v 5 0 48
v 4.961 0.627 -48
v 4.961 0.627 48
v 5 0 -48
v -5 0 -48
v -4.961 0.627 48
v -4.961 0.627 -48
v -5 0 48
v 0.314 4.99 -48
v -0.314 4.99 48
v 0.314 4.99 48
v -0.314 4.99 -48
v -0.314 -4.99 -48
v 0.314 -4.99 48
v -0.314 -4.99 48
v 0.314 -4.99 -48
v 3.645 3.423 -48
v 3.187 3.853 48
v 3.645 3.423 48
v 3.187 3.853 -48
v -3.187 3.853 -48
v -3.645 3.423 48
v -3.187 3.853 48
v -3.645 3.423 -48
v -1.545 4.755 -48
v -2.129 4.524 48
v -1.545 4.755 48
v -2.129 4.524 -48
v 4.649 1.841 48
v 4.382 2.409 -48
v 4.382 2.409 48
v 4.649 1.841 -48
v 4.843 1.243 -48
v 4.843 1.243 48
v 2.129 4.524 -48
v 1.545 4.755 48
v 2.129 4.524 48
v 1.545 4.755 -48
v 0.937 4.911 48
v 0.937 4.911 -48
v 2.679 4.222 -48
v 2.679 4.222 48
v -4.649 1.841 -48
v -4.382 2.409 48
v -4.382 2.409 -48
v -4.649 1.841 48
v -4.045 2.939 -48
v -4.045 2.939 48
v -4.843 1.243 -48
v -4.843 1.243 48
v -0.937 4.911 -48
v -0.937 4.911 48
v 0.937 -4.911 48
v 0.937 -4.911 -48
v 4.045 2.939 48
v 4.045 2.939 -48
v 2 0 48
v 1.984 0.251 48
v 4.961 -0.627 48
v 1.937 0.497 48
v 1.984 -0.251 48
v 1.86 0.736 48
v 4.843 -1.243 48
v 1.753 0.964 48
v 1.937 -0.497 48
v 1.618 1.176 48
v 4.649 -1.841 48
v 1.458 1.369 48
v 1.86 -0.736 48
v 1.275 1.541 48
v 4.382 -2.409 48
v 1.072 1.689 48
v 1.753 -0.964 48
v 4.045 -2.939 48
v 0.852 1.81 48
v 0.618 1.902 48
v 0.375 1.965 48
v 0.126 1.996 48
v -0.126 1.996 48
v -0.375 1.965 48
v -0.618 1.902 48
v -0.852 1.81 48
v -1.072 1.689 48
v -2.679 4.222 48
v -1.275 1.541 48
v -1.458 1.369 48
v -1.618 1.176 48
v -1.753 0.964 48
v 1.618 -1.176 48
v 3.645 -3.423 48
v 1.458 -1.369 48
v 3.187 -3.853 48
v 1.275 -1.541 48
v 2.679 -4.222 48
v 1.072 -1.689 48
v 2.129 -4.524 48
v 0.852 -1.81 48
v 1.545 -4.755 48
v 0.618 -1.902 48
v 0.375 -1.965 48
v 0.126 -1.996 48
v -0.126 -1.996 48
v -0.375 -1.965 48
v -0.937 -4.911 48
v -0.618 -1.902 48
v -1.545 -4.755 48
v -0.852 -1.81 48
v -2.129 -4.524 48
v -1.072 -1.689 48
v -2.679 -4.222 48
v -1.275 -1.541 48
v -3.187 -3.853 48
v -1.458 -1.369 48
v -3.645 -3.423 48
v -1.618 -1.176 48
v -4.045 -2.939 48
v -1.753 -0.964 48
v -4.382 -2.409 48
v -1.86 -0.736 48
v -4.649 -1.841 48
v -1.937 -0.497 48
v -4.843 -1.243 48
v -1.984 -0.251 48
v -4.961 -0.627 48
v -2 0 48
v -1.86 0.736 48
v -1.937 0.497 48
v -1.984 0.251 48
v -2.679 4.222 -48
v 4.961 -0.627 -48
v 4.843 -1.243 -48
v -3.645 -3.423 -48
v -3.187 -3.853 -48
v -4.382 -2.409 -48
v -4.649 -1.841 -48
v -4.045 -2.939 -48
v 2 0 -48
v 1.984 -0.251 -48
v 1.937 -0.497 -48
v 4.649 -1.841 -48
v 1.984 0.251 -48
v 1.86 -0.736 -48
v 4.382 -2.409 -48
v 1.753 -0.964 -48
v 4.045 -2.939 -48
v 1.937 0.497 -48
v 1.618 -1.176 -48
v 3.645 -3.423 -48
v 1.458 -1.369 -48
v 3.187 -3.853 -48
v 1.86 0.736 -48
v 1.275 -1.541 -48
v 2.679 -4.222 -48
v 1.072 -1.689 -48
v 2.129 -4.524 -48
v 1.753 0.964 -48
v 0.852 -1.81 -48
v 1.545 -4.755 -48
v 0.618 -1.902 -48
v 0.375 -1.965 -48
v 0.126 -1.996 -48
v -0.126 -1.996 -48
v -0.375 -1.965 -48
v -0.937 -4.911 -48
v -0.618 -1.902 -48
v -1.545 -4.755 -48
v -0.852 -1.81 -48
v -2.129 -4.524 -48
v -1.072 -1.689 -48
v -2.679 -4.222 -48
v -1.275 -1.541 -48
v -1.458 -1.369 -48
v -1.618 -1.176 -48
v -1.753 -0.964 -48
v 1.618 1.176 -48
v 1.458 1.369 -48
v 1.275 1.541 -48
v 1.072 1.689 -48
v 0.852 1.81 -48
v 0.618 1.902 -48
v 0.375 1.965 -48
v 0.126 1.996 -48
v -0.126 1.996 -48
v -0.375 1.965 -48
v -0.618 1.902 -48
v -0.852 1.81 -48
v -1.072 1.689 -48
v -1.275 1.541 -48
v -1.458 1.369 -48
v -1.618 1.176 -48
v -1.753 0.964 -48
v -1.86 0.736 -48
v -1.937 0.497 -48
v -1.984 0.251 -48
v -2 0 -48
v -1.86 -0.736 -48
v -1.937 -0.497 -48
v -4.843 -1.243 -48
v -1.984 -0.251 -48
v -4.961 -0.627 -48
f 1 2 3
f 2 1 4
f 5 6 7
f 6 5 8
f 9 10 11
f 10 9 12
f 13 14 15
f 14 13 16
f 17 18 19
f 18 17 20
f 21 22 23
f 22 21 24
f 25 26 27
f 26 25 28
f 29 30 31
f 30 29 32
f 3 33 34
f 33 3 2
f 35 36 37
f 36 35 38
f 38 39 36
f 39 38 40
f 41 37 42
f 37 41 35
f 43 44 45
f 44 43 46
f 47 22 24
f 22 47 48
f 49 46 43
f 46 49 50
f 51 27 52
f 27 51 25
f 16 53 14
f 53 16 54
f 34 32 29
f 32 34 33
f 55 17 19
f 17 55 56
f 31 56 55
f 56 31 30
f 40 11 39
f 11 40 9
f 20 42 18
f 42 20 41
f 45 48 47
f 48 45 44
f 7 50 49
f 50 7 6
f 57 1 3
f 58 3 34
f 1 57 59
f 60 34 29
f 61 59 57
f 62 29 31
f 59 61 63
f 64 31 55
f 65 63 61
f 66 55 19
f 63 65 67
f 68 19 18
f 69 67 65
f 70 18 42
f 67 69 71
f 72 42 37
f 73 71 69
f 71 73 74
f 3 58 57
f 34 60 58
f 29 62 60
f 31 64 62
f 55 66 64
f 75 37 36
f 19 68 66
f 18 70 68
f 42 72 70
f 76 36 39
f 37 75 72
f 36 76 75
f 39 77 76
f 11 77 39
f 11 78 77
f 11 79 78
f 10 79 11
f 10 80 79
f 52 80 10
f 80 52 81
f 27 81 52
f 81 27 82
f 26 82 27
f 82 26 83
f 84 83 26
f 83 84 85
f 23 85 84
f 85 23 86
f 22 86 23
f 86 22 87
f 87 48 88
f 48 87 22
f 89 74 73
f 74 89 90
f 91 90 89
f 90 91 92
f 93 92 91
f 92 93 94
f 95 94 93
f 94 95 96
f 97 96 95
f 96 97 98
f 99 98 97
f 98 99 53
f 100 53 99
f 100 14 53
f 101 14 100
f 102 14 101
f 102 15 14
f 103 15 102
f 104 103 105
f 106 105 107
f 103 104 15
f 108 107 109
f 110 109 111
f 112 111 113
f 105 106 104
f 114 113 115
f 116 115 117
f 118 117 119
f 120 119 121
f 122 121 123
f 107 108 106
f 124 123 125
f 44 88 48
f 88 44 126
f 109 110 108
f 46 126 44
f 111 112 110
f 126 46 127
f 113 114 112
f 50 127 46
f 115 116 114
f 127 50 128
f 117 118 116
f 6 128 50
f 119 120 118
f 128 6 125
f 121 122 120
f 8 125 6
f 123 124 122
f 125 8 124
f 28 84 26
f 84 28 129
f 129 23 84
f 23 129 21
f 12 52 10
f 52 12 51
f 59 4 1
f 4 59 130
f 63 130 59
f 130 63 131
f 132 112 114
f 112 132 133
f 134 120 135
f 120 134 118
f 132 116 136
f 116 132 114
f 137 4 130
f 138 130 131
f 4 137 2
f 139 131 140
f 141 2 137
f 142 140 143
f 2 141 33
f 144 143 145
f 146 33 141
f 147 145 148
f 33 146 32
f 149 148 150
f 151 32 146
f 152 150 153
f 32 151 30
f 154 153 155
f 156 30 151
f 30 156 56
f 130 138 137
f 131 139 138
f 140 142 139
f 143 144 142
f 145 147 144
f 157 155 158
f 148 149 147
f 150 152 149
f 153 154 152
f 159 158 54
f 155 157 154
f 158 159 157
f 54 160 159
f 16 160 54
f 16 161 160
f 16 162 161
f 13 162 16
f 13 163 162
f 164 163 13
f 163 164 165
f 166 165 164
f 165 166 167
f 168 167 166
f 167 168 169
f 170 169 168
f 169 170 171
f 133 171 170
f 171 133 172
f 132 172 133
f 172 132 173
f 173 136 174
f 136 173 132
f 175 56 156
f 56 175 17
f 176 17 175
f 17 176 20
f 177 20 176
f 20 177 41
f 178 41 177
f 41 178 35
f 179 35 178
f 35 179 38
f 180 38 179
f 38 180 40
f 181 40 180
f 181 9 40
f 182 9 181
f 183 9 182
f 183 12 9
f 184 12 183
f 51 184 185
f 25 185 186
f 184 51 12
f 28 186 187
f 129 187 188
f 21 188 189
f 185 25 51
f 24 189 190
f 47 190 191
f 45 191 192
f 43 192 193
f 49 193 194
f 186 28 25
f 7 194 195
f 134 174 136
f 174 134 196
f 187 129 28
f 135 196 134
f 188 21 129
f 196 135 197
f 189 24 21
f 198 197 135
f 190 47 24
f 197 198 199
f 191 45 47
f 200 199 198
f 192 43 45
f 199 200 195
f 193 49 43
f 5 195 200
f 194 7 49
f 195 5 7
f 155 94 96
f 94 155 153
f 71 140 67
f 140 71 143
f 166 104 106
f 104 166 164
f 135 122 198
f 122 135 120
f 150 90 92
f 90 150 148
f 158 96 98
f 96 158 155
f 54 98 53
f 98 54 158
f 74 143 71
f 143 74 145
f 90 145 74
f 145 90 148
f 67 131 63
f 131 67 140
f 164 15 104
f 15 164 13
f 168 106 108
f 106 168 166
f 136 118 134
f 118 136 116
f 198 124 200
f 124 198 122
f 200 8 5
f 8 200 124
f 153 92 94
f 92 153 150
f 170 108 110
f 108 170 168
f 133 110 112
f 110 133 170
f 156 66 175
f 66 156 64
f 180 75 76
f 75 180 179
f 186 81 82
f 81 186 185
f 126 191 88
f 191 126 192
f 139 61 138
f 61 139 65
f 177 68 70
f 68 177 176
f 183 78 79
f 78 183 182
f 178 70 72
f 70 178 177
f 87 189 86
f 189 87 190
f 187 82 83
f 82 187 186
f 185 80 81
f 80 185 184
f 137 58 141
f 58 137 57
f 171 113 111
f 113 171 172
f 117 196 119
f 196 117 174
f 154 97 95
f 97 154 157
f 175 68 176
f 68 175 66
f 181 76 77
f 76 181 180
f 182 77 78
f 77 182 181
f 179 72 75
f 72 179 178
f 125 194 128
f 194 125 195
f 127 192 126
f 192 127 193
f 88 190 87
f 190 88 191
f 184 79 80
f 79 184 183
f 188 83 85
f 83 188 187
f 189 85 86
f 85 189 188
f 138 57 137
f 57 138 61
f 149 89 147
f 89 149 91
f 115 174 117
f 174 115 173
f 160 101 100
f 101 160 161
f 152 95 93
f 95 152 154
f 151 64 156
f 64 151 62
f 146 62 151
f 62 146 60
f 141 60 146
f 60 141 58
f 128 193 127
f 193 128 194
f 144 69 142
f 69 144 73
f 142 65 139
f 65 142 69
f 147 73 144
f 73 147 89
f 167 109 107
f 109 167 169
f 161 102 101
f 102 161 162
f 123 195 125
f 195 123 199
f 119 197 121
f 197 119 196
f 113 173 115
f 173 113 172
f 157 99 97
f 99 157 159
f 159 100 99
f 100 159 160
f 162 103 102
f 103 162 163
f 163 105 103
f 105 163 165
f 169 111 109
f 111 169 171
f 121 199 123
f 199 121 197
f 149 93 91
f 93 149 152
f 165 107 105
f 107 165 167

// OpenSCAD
$fn = 50;


difference() {
	union() {
		translate(v = [0, 0, -48.0000000000]) {
			cylinder(h = 96, r = 5.0000000000);
		}
	}
	union() {
		translate(v = [0, 0, -100.0000000000]) {
			cylinder(h = 200, r = 2);
		}
	}
}
